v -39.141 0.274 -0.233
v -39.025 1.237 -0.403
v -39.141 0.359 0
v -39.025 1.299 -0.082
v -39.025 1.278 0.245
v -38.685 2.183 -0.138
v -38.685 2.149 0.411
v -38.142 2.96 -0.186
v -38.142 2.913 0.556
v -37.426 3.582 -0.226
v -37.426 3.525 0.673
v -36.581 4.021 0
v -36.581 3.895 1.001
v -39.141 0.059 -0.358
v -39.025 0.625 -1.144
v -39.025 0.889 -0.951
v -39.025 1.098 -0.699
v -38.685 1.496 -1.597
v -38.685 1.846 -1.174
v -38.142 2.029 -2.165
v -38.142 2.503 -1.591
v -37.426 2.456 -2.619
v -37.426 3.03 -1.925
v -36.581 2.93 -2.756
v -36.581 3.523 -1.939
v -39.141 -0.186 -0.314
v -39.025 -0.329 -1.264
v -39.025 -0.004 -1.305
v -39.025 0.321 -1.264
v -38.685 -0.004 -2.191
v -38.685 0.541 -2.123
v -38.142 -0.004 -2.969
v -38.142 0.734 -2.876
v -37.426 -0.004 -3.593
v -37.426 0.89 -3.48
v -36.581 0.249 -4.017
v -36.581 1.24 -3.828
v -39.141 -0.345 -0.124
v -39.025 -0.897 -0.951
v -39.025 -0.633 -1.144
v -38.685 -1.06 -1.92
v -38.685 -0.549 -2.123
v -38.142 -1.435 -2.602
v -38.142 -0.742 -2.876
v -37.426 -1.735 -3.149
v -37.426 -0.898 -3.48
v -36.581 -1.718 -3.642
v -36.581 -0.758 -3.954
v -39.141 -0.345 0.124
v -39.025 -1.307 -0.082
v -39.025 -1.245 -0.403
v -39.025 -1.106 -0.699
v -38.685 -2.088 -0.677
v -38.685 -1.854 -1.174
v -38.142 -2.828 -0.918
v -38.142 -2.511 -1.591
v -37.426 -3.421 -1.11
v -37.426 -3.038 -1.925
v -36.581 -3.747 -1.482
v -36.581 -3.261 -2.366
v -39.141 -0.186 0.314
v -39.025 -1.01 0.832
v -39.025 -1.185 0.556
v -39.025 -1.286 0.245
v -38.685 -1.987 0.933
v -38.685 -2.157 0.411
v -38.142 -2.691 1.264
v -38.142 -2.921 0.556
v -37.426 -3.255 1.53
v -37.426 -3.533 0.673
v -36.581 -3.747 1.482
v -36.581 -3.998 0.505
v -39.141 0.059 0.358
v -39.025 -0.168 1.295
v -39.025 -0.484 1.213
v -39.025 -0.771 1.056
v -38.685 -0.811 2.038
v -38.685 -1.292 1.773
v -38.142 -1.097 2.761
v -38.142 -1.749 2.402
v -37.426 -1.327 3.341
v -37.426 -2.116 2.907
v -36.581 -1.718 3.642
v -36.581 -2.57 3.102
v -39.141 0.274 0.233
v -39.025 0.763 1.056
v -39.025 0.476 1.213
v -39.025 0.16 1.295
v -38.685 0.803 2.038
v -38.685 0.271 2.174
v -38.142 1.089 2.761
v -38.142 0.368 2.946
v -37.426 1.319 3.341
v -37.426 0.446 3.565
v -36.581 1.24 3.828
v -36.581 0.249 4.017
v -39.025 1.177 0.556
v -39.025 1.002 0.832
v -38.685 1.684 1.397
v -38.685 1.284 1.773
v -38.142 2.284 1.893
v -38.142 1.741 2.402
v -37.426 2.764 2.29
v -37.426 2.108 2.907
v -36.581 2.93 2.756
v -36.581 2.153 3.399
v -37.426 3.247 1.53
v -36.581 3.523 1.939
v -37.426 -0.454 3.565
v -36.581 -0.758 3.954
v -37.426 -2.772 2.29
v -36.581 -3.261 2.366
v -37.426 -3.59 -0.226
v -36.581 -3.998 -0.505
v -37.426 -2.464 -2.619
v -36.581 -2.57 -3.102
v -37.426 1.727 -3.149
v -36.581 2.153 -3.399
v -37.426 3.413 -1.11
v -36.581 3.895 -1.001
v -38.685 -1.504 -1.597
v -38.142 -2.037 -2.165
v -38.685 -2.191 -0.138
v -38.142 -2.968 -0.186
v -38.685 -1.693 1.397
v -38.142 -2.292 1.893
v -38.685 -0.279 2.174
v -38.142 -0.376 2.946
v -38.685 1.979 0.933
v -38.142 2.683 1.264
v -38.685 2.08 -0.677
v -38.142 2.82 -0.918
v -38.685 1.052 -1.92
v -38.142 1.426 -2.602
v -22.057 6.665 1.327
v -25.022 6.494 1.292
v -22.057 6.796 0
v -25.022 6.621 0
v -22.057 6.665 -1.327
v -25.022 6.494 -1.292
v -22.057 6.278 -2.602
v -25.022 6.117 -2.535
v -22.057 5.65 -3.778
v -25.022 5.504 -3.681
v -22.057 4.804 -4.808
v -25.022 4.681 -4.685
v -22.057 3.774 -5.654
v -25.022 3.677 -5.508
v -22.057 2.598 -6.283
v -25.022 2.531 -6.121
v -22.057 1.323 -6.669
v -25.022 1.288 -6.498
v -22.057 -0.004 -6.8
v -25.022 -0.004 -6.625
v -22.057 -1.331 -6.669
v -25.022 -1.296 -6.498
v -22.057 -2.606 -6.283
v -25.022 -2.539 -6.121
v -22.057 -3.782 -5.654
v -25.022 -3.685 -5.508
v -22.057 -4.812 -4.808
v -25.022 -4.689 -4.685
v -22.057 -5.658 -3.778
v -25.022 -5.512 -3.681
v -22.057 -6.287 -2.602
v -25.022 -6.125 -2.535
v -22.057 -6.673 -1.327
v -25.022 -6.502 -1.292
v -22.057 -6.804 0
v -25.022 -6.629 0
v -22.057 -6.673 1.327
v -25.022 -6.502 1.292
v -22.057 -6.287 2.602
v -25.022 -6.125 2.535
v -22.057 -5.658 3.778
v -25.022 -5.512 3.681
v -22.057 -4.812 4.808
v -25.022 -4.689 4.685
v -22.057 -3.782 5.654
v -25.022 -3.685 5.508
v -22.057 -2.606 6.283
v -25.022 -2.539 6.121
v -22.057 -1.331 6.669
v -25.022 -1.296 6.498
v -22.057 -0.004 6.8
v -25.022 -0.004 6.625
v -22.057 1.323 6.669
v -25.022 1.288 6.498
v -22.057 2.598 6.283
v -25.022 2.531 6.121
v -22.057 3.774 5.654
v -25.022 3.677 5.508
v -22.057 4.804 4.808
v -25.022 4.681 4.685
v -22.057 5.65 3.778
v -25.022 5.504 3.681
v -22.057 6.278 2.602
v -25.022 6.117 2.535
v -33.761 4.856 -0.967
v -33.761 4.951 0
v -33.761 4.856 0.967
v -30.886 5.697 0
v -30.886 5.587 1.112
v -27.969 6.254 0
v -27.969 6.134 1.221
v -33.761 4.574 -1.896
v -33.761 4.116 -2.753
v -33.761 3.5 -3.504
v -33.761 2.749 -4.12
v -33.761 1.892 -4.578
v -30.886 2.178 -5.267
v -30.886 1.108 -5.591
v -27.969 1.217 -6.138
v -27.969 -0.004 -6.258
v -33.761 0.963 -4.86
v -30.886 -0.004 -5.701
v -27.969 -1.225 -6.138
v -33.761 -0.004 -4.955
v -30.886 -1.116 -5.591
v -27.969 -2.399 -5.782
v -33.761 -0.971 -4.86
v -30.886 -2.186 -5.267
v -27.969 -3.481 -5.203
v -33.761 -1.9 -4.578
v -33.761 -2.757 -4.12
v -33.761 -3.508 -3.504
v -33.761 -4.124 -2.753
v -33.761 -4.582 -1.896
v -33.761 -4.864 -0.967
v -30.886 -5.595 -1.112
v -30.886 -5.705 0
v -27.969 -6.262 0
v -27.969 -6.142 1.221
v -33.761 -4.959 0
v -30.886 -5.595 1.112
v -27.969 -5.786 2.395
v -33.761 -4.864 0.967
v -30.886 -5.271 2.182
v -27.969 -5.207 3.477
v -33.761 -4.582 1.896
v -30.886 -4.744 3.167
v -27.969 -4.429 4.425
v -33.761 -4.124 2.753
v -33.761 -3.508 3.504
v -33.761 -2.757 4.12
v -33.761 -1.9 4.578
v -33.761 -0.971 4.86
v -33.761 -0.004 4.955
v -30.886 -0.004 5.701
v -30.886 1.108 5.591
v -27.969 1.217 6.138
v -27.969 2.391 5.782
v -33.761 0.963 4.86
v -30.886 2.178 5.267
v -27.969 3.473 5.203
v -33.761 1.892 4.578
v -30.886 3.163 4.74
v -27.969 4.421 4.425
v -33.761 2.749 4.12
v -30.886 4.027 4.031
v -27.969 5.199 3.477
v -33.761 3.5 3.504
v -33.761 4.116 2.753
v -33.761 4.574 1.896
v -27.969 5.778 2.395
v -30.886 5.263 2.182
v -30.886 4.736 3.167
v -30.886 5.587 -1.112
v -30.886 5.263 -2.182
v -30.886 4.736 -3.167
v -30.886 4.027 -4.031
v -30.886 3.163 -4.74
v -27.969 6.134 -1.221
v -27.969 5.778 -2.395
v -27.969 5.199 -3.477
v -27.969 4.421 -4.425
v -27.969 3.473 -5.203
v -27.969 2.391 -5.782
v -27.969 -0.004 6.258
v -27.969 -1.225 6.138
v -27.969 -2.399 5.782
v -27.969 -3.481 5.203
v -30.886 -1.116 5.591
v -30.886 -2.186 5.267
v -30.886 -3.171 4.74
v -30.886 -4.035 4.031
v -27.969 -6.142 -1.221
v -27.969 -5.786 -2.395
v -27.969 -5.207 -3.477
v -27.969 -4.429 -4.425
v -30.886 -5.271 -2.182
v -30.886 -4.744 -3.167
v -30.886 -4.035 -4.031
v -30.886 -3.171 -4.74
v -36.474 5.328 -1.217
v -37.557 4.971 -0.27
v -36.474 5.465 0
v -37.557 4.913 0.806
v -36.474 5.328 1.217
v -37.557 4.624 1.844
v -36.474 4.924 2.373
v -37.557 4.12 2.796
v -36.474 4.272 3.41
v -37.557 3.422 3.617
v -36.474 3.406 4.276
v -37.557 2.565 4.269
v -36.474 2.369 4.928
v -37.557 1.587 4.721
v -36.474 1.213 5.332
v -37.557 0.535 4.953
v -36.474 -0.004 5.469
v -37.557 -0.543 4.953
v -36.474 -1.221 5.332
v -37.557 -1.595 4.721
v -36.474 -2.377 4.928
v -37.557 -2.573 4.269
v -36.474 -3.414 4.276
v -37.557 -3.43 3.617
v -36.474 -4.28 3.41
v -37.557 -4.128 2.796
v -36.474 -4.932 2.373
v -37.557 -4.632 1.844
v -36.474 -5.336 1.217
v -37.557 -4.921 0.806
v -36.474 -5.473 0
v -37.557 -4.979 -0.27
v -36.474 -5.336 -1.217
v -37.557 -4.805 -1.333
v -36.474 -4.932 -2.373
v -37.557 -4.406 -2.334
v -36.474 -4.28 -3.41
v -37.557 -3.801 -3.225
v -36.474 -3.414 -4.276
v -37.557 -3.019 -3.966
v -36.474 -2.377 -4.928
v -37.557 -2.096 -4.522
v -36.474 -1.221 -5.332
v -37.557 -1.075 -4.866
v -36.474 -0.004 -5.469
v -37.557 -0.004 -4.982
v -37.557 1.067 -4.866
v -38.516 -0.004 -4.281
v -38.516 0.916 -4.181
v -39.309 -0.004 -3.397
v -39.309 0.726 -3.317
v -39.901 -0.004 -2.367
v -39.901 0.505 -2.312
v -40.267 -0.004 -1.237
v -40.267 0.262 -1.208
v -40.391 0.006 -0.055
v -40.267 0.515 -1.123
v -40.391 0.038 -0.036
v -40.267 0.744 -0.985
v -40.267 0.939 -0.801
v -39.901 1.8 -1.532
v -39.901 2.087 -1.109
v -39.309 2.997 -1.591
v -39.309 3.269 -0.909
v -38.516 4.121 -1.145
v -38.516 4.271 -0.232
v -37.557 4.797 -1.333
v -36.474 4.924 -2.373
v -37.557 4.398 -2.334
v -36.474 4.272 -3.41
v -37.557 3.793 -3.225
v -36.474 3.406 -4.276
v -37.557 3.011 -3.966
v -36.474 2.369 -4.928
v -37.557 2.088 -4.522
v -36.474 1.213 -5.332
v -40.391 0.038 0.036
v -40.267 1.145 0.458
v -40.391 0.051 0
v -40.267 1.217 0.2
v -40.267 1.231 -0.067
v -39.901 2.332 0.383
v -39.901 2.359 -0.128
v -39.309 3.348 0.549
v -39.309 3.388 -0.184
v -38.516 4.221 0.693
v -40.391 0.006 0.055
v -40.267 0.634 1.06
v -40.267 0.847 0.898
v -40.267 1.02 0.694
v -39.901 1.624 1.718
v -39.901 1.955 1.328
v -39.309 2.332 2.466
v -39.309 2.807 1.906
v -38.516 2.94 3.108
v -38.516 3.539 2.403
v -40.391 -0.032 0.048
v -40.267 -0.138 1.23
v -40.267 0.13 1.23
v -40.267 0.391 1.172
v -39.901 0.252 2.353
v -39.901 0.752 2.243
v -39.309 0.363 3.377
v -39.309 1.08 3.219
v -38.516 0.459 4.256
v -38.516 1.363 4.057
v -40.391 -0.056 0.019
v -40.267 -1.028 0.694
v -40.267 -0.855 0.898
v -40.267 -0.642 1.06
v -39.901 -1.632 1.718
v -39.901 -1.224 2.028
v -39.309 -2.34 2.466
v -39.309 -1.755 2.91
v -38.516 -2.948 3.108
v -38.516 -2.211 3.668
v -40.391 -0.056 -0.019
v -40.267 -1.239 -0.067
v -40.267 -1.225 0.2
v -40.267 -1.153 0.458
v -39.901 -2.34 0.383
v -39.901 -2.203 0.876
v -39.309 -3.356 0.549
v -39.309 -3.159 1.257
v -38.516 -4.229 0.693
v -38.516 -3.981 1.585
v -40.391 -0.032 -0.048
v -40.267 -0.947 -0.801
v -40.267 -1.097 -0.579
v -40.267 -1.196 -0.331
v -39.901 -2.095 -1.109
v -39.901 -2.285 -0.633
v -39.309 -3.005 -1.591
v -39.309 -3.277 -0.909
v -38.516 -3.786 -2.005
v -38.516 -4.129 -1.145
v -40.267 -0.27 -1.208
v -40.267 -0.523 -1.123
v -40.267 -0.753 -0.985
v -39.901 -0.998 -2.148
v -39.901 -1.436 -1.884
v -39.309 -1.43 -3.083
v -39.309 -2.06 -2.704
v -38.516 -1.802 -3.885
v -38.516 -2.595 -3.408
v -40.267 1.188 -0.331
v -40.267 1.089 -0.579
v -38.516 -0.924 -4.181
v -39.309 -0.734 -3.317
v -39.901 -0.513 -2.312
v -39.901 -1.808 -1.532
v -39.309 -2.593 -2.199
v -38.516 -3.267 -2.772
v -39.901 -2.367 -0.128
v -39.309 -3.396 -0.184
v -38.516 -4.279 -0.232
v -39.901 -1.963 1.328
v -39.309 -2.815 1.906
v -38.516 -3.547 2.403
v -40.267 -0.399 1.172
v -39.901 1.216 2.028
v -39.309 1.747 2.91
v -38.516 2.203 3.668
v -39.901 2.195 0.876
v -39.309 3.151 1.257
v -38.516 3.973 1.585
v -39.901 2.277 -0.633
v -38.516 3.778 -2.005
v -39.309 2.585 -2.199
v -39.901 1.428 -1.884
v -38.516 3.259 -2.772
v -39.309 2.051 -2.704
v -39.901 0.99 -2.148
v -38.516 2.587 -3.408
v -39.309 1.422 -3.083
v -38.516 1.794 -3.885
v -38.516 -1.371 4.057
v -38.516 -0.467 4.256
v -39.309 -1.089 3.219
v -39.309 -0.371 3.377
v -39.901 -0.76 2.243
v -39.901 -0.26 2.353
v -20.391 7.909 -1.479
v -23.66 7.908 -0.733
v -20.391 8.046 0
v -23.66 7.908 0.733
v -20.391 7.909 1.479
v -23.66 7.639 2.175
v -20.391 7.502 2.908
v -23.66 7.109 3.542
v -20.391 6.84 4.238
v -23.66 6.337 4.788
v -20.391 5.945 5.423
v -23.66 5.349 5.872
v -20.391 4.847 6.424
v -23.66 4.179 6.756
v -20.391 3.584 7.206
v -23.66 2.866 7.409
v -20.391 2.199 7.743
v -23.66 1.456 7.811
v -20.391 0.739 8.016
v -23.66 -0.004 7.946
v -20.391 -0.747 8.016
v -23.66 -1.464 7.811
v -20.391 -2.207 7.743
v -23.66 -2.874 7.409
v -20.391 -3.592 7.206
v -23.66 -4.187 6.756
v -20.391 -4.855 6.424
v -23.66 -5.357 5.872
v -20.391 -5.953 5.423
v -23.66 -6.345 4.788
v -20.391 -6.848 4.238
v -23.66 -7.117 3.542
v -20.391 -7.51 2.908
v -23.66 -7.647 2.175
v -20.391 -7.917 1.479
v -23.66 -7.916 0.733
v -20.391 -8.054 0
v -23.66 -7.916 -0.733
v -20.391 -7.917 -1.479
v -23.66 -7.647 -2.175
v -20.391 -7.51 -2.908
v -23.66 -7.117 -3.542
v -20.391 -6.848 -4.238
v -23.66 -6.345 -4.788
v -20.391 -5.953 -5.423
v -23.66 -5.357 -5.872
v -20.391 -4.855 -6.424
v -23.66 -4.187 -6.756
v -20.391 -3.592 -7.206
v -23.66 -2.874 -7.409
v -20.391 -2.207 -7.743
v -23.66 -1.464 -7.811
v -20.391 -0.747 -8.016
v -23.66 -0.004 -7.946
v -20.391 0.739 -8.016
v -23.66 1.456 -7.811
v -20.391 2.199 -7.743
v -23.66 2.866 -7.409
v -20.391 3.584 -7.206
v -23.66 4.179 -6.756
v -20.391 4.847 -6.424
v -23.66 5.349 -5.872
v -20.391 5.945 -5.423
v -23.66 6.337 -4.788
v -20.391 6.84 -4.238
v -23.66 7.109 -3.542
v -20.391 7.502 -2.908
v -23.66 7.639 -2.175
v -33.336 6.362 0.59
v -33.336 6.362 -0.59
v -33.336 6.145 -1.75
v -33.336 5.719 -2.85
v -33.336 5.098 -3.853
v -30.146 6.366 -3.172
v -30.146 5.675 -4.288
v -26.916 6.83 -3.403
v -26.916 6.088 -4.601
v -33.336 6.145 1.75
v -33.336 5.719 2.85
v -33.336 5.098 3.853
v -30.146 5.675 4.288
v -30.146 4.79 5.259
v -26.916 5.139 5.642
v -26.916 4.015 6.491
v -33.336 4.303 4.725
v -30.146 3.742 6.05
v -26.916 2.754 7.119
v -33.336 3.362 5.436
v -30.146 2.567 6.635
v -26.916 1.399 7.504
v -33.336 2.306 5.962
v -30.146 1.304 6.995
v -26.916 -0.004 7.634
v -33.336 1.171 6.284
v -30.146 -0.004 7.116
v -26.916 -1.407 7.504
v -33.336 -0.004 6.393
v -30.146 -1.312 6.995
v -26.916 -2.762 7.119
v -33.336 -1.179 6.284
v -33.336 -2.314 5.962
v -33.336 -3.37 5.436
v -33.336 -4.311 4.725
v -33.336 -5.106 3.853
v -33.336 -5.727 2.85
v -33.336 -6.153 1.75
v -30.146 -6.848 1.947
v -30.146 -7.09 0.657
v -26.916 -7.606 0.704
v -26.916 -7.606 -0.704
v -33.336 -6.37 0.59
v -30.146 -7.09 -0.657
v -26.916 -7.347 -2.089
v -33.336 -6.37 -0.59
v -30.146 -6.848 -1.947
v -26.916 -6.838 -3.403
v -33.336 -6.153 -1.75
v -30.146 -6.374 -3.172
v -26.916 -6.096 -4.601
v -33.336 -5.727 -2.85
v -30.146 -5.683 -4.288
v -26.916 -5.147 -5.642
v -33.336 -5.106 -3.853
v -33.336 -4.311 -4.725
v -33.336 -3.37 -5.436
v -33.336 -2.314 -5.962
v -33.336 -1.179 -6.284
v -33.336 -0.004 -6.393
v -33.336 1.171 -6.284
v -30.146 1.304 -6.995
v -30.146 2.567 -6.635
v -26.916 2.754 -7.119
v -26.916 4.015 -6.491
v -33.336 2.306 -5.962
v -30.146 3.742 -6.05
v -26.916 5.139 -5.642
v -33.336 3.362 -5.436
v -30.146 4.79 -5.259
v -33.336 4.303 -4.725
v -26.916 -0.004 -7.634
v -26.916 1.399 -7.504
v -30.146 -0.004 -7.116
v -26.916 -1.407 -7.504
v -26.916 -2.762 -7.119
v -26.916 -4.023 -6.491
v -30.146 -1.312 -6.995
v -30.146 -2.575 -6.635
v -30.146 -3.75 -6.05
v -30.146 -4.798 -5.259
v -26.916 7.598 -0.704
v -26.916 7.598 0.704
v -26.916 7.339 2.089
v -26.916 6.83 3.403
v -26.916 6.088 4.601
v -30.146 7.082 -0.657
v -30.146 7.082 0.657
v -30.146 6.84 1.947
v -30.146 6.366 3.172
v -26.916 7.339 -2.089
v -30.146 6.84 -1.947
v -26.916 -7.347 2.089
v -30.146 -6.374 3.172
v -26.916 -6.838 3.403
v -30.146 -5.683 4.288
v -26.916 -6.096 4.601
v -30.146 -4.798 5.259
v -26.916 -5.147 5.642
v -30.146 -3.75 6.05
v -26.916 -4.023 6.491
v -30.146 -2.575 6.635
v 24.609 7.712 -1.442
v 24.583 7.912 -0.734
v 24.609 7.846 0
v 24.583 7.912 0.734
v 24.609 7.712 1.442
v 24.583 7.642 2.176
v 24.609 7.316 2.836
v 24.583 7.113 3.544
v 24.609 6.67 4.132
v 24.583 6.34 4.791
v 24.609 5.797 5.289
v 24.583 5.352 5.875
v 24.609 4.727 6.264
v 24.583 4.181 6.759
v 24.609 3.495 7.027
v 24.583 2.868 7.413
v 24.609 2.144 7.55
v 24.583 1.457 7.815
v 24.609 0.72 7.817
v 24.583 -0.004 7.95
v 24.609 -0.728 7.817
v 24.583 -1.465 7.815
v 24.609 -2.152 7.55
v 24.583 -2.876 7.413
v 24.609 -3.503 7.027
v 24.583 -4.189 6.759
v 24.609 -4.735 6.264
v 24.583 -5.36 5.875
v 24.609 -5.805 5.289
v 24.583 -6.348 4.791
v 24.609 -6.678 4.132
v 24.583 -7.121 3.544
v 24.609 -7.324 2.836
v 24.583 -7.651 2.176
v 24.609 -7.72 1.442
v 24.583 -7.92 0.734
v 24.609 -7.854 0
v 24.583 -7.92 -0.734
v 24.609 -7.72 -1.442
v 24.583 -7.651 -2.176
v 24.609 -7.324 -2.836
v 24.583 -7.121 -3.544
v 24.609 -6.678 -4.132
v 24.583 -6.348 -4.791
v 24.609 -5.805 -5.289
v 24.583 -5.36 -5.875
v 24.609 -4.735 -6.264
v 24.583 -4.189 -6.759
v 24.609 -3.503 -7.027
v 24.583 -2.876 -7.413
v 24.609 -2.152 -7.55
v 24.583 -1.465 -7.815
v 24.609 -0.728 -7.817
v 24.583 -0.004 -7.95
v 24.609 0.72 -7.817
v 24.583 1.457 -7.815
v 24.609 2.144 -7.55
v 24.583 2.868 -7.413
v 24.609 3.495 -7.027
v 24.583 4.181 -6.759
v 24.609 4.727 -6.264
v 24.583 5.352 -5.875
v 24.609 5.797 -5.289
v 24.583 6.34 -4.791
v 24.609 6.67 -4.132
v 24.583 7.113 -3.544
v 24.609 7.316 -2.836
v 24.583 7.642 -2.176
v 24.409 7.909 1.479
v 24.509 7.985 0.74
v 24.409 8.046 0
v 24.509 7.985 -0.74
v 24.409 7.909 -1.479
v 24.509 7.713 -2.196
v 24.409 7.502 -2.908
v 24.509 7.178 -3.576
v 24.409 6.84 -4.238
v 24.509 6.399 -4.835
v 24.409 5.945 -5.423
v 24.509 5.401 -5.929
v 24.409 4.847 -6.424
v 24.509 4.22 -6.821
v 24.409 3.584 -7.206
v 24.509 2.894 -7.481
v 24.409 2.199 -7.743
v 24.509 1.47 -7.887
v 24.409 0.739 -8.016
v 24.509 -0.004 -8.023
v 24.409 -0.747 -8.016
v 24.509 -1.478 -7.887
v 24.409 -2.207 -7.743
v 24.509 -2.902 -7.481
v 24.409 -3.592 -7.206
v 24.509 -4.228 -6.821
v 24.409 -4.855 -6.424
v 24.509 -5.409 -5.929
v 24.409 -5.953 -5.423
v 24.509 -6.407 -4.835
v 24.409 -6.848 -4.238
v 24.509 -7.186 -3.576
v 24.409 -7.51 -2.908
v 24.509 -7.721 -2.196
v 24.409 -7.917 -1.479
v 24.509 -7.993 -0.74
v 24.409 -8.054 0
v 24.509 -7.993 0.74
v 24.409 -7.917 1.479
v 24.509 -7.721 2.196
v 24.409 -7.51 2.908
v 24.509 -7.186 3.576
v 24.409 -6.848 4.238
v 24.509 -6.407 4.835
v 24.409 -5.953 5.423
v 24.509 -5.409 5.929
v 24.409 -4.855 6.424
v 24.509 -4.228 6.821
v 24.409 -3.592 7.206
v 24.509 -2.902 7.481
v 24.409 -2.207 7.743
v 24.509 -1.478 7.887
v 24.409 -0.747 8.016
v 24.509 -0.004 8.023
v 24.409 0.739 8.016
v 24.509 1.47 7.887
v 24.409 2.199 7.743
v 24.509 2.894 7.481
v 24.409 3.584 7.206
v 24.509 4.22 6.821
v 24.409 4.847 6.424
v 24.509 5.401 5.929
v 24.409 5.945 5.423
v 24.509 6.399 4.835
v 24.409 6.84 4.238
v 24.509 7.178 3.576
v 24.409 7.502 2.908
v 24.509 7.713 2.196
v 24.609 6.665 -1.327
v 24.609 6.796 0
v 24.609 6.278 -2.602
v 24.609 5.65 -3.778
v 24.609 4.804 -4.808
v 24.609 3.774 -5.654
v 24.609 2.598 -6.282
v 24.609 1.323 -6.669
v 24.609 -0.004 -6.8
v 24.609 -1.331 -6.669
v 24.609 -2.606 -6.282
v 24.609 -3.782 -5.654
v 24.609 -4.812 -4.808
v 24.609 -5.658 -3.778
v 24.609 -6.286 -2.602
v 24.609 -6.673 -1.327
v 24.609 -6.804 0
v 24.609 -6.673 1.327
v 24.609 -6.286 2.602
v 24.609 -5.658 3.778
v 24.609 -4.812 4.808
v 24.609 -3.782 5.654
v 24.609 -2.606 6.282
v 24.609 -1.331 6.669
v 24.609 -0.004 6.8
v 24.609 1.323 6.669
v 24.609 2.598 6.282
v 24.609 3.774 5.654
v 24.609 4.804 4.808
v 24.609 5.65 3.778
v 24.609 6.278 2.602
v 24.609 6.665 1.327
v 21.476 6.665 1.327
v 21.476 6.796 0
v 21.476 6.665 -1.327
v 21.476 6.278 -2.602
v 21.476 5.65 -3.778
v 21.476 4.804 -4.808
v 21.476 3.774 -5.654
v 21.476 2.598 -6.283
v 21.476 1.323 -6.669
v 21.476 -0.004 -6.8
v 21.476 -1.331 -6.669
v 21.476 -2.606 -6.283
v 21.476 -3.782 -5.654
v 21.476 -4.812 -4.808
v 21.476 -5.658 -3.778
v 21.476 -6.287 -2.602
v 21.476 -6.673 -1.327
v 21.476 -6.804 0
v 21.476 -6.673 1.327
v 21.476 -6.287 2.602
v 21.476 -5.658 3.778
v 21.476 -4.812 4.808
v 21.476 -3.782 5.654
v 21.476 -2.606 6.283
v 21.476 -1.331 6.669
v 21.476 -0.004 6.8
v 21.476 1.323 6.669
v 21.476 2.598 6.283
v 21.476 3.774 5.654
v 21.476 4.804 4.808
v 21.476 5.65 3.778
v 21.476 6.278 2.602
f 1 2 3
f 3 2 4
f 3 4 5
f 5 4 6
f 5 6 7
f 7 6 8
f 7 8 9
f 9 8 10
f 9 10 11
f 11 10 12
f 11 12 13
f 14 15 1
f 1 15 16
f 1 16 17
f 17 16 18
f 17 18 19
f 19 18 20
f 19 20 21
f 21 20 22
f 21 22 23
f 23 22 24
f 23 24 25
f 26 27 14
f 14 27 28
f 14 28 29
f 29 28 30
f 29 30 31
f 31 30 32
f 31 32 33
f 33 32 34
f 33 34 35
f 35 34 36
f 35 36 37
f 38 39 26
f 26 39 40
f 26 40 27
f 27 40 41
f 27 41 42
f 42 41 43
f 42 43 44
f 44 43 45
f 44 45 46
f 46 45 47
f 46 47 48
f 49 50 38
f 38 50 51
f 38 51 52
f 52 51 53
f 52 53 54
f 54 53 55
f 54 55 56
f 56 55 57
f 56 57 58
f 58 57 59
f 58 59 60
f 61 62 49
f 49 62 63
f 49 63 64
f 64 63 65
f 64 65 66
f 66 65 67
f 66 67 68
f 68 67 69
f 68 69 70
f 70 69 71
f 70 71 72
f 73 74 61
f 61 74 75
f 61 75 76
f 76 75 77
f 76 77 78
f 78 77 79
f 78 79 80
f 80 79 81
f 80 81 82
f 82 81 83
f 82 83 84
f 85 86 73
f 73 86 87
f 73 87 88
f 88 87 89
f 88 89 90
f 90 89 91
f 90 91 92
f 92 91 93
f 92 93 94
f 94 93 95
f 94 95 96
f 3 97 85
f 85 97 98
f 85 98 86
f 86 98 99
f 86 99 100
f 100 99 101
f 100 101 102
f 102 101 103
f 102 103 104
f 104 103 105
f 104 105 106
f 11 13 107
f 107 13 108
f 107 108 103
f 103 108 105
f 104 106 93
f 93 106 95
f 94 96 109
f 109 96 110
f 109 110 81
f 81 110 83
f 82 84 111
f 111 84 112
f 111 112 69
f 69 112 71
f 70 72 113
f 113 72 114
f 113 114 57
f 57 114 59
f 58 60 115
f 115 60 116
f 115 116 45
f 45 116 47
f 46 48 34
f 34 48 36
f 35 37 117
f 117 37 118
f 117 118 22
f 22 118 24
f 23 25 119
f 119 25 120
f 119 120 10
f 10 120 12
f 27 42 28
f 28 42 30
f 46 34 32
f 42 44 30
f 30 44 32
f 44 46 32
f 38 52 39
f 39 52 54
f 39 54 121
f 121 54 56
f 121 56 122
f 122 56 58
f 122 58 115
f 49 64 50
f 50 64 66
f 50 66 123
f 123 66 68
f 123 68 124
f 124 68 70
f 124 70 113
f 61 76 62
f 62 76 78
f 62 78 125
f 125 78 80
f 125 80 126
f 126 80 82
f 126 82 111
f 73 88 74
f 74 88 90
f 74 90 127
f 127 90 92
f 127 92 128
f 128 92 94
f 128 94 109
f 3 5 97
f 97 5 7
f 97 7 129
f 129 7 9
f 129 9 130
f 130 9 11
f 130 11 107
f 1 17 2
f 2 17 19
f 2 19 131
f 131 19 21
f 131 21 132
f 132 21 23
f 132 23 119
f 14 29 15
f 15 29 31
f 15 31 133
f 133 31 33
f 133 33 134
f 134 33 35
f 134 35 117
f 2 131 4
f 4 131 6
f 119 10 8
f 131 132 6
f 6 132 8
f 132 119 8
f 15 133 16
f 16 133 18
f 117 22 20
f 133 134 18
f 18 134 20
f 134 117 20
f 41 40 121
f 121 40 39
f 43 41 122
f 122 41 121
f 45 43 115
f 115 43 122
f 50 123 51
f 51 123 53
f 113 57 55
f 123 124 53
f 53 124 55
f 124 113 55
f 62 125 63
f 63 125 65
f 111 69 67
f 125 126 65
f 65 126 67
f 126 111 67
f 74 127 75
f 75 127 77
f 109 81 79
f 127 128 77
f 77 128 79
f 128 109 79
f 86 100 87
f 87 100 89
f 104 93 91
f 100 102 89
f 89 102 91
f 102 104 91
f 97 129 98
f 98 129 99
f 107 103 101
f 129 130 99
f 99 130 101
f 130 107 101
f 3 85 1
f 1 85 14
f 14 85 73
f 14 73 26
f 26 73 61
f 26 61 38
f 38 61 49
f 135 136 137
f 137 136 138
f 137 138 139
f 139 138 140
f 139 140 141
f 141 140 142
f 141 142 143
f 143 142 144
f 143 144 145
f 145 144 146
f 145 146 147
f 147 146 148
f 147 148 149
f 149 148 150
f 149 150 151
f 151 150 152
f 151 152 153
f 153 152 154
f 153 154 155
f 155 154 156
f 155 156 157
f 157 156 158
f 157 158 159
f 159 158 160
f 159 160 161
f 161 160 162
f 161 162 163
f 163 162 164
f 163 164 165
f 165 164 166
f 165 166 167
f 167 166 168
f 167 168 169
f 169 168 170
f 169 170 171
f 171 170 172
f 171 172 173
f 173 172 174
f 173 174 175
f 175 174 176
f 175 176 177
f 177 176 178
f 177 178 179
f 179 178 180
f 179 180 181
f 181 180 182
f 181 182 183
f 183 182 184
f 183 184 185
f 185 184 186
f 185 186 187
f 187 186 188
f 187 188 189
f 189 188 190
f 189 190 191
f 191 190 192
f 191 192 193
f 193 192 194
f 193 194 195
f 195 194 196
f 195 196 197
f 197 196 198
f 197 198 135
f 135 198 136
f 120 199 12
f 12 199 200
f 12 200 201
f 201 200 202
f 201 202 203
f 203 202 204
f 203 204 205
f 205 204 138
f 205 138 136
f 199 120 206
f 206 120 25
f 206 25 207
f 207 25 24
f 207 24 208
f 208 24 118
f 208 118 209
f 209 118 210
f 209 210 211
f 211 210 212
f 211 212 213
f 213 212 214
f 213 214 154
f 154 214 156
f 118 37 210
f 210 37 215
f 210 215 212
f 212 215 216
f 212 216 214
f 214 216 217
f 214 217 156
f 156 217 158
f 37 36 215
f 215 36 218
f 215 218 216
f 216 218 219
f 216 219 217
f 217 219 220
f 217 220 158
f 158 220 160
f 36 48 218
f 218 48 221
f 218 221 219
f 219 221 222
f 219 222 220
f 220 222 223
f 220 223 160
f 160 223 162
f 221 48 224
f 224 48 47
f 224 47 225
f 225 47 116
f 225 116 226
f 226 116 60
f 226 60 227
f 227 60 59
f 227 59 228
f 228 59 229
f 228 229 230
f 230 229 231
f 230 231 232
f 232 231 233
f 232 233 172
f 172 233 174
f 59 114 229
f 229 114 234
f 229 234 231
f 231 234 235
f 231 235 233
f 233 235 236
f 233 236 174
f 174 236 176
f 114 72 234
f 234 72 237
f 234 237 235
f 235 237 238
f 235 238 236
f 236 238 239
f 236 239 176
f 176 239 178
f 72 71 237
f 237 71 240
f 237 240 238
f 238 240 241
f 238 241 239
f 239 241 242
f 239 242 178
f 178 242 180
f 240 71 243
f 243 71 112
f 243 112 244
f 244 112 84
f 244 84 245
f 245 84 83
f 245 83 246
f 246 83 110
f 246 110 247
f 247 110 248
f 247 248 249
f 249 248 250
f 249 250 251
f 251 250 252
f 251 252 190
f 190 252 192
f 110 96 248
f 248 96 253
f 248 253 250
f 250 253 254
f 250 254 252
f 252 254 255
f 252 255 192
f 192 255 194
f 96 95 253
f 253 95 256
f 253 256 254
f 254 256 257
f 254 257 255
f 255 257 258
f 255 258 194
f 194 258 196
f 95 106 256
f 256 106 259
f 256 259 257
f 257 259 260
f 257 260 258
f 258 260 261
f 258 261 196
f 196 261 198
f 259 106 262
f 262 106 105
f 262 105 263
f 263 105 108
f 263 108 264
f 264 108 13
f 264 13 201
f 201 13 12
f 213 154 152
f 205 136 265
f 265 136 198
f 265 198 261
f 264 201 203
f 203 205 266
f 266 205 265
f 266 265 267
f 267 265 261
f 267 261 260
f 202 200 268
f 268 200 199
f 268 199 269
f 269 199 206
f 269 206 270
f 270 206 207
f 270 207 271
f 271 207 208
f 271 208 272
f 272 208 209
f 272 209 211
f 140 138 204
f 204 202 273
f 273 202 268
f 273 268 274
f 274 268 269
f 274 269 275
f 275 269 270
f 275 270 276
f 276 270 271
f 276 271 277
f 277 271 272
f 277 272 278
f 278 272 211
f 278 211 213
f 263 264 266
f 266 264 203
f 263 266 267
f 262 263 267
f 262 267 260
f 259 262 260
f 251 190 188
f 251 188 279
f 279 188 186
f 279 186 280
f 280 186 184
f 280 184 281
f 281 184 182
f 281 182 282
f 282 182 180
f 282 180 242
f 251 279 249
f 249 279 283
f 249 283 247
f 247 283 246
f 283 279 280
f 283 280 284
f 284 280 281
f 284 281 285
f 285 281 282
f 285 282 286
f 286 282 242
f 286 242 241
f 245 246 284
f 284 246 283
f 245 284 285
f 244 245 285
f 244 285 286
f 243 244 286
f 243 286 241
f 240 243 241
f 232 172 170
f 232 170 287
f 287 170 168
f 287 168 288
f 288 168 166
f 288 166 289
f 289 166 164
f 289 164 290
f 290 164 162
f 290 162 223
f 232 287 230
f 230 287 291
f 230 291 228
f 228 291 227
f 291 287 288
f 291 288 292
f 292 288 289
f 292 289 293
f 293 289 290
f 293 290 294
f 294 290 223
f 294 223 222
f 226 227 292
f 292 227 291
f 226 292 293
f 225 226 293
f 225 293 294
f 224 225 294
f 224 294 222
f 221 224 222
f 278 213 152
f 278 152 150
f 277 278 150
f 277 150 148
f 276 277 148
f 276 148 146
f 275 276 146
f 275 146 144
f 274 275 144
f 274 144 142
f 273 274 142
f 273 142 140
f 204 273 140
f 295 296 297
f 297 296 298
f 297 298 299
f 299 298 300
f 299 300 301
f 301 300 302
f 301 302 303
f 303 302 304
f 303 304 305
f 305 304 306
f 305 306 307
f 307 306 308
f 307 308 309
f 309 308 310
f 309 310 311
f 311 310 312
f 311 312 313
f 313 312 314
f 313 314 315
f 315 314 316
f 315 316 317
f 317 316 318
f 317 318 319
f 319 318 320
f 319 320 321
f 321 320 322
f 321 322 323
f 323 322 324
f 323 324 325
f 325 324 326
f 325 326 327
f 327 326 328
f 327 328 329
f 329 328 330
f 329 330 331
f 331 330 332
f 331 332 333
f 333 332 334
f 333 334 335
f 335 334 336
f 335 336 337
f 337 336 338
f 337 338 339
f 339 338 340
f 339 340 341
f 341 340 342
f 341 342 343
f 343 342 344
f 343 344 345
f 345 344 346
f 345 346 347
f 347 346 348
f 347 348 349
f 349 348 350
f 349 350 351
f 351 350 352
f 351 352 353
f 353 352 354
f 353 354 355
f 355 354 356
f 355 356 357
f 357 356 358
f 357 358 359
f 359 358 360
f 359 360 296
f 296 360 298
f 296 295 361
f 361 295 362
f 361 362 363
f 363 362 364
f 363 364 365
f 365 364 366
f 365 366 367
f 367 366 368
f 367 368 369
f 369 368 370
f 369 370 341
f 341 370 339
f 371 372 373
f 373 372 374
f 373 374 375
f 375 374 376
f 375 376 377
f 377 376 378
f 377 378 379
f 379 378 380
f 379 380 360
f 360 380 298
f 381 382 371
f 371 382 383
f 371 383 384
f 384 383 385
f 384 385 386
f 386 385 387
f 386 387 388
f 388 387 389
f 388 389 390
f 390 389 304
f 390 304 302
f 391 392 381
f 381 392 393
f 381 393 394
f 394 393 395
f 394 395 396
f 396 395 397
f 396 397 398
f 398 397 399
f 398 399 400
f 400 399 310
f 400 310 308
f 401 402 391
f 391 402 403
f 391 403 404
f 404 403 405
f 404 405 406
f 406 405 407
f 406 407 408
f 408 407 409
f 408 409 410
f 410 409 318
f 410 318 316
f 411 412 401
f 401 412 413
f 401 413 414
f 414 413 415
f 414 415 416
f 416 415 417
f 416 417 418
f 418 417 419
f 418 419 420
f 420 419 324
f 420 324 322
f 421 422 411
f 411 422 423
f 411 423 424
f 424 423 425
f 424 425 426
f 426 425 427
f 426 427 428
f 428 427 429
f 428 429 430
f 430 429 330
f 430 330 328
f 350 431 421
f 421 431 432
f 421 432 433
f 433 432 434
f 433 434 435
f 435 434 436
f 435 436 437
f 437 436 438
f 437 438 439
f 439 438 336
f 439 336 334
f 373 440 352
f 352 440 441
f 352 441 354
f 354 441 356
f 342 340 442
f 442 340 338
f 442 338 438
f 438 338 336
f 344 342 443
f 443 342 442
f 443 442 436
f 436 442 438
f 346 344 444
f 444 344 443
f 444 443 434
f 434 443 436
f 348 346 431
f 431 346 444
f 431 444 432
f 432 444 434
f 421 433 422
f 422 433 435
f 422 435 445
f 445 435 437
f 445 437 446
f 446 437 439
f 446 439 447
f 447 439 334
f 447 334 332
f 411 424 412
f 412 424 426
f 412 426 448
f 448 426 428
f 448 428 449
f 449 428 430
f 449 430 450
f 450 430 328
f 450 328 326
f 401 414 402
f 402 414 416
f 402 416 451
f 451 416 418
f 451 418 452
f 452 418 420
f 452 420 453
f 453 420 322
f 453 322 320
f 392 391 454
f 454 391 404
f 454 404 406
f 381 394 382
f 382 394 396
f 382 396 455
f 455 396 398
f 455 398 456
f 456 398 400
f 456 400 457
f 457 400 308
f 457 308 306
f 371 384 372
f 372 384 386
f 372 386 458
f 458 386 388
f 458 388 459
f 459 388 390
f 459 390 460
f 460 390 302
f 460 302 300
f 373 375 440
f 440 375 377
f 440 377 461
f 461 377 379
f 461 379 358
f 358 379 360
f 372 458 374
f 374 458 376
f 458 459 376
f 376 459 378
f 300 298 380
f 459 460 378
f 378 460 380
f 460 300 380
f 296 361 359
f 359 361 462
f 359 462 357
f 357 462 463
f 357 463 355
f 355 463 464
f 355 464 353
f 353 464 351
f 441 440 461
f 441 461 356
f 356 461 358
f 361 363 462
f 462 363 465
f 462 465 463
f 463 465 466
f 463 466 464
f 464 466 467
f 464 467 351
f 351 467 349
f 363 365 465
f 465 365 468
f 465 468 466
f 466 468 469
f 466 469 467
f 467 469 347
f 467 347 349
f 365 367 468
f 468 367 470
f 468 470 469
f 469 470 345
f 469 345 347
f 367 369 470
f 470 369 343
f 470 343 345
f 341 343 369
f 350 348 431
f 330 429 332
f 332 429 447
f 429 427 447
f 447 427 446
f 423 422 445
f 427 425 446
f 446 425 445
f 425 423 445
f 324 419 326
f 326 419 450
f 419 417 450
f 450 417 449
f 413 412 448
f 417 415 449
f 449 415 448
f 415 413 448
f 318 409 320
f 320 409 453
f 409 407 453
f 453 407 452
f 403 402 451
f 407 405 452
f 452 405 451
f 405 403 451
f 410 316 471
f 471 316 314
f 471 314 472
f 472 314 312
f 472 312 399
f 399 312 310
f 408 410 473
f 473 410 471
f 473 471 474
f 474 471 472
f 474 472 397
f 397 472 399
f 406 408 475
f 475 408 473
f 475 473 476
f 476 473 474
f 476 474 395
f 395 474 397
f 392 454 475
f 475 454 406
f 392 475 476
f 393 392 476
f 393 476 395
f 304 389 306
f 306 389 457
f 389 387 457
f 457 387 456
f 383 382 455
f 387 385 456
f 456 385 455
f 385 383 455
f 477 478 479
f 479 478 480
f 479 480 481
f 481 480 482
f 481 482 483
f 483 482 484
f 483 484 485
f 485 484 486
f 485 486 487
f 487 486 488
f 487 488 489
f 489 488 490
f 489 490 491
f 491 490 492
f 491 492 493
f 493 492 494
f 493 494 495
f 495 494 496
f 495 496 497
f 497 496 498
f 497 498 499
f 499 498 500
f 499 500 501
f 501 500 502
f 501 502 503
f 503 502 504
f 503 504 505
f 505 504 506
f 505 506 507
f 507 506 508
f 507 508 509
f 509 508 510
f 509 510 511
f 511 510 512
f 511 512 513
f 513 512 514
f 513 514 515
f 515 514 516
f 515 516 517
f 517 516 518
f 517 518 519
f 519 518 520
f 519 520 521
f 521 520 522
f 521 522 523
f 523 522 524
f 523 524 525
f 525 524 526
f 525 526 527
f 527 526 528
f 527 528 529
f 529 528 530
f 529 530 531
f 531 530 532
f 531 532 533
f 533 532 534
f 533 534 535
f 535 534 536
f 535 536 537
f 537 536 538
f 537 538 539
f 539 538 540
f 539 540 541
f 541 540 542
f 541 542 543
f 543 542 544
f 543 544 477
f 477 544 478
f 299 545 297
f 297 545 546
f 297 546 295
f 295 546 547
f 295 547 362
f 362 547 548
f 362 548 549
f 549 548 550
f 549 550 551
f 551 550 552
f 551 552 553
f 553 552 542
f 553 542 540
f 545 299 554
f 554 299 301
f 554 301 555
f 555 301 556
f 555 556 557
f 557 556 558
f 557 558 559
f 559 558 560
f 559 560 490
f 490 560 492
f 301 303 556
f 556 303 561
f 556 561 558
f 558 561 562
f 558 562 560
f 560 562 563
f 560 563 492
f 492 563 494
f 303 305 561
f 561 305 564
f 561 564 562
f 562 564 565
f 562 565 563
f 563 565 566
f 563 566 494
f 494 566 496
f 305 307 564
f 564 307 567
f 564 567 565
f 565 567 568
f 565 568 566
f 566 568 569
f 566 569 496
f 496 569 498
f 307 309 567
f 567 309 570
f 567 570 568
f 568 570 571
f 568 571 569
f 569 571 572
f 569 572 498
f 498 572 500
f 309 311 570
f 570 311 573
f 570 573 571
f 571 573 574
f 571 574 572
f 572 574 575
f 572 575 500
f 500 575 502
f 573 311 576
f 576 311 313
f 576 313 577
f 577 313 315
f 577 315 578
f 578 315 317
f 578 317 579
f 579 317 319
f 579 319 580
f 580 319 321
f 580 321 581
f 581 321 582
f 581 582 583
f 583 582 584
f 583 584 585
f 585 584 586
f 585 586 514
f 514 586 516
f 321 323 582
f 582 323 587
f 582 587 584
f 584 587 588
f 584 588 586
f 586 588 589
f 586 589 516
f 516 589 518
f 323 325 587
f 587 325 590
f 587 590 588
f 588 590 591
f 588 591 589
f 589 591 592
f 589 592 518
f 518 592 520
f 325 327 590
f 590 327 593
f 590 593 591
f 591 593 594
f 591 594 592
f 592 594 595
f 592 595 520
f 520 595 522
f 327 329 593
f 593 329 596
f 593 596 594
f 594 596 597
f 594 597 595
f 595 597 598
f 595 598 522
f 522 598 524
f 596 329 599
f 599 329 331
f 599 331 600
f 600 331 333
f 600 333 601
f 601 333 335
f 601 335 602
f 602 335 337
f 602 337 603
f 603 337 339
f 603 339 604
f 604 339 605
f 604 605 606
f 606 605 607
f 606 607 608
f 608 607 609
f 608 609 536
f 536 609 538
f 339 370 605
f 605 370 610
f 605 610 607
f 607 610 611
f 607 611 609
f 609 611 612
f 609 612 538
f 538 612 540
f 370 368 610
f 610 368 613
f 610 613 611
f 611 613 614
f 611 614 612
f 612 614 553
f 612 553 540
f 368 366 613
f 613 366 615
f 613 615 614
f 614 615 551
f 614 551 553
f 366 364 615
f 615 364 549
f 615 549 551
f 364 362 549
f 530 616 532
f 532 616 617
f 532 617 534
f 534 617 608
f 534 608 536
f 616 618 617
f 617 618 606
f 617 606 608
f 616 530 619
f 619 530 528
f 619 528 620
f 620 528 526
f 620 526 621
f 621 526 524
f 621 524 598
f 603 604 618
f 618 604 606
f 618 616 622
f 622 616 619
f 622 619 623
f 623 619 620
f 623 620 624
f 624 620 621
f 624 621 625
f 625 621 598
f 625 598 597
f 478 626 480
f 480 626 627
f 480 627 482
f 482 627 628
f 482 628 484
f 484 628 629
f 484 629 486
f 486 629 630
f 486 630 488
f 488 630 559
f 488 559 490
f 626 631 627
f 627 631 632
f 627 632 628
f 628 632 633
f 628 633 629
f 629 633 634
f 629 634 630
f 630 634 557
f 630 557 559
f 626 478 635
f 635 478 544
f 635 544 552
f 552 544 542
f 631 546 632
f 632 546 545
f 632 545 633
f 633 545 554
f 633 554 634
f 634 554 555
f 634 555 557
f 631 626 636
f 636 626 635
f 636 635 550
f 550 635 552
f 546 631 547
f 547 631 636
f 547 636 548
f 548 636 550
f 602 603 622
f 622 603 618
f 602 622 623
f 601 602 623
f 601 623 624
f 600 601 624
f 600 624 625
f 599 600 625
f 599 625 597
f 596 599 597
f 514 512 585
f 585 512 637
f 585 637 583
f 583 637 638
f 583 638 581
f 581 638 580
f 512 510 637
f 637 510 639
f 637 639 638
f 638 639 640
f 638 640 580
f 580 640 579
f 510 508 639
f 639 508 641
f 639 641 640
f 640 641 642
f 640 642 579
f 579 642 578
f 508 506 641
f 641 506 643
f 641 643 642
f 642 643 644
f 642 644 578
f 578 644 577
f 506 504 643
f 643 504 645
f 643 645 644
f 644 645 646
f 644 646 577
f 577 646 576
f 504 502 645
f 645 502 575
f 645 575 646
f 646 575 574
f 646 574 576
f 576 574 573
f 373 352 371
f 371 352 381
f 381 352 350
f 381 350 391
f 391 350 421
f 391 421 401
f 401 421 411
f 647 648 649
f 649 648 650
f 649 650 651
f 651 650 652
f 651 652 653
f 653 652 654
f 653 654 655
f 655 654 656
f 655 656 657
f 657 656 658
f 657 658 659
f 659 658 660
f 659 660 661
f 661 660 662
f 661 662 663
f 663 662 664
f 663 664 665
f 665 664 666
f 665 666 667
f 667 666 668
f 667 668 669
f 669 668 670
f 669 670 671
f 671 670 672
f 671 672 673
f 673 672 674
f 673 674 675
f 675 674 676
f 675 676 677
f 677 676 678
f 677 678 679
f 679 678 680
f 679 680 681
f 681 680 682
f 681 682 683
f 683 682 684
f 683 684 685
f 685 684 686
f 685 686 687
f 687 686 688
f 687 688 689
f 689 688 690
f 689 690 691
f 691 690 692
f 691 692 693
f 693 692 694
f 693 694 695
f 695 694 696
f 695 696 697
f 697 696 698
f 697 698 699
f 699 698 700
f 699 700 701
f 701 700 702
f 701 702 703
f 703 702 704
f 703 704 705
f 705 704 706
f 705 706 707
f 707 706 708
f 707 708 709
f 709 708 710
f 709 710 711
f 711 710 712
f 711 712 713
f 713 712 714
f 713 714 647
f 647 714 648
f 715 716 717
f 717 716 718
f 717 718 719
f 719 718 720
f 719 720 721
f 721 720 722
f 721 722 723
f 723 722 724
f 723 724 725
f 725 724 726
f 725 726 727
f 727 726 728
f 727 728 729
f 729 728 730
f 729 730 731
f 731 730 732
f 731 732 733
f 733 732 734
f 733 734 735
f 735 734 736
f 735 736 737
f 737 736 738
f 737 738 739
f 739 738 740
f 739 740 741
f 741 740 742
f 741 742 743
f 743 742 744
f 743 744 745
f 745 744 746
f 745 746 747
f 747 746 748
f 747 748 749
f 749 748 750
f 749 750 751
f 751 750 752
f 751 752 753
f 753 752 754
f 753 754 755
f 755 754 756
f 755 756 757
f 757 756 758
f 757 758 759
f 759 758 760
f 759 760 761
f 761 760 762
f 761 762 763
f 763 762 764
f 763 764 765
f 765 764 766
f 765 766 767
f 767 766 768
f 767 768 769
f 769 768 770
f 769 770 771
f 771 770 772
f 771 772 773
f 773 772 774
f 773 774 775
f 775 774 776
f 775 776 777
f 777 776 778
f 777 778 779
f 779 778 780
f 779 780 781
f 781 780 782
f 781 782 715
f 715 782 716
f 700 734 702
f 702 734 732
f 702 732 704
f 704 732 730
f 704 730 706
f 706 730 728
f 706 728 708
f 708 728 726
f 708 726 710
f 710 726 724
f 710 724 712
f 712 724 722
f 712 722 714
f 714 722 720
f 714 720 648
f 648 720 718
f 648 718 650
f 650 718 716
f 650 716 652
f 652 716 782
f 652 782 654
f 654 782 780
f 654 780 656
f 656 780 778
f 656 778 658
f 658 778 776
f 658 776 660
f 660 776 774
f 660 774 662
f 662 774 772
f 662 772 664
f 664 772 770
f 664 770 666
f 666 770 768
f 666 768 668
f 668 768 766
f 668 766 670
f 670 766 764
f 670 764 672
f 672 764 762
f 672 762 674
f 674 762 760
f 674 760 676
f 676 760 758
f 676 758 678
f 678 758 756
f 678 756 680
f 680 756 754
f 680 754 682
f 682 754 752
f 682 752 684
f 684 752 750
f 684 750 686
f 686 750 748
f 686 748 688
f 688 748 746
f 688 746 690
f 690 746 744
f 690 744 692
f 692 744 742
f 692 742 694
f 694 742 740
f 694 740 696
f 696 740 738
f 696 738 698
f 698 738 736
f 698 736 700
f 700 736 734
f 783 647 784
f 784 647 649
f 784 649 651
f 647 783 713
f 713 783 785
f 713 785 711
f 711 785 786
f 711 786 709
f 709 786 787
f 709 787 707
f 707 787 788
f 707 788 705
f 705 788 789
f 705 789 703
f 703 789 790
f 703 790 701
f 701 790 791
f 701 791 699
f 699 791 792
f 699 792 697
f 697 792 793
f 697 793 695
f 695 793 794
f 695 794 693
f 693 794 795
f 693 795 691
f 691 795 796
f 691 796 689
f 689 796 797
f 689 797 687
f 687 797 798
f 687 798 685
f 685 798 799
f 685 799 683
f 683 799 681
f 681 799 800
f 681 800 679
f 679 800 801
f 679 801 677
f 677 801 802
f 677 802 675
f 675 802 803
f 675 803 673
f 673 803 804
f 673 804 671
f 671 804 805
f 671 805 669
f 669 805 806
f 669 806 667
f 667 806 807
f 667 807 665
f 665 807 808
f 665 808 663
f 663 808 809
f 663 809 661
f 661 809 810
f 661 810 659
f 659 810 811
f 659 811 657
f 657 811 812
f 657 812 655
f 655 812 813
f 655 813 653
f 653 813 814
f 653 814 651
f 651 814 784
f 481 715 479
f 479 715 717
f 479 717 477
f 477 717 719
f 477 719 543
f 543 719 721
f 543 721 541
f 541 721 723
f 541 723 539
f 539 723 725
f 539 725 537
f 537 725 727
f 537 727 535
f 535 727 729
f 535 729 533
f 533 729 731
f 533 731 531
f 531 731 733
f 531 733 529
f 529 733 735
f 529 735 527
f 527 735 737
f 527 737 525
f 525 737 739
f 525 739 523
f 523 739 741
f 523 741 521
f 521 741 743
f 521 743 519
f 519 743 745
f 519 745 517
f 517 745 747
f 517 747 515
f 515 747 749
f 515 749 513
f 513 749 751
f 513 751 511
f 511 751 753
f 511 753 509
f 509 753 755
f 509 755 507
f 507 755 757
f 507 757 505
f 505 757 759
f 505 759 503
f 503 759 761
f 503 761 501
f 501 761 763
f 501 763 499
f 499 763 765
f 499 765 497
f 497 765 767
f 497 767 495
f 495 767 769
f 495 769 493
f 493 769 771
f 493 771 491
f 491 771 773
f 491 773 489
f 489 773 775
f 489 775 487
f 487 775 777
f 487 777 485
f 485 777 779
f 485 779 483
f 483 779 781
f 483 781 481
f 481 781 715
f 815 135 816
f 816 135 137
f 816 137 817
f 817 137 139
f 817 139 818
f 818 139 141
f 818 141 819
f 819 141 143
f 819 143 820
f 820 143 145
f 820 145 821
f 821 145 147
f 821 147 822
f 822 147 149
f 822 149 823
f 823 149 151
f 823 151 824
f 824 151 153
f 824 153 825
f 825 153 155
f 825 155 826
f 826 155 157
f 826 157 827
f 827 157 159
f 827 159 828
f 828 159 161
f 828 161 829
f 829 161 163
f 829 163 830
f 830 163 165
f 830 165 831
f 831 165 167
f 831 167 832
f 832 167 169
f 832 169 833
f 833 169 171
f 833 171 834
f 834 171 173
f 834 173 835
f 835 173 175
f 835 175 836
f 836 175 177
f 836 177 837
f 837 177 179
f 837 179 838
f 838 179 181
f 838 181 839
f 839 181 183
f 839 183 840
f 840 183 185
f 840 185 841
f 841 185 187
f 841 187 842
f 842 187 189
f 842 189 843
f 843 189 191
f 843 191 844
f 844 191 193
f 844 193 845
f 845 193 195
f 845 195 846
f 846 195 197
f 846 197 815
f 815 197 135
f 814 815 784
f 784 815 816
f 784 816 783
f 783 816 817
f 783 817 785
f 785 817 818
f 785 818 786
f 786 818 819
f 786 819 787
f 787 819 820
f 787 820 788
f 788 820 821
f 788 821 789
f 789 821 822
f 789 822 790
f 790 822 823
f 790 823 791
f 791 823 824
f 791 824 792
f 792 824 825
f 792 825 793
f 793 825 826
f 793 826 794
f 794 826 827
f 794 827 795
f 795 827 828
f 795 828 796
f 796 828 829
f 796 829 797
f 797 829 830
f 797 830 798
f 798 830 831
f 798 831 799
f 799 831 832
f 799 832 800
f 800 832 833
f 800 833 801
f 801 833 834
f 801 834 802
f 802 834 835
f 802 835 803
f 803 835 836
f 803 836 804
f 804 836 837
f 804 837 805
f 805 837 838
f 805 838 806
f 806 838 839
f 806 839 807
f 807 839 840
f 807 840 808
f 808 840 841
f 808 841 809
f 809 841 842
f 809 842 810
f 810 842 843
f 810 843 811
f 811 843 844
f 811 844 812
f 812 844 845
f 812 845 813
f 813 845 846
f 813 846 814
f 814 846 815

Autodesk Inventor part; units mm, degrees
ref_plane "YZ Plane" through (0, 0, 0) normal (1, 0, 0) x (0, 1, 0)
ref_plane "XZ Plane" through (0, 0, 0) normal (0, 1, 0) x (-1, 0, 0)
ref_plane "XY Plane" through (0, 0, 0) normal (0, 0, 1) x (1, 0, 0)
sketch "Sketch1" plane through (0, 0, 0) normal (0, 0, 1) x (1, 0, 0)
  line L0 (-32.3906, 7.996) -> (-32.3906, -0.004) construction
  line L1 (-40.3906, -0.004) -> (-32.3906, -0.004) construction
  line L2 (61.6987, -0.004) -> (-73.3826, -0.004) construction
  line L3 (24.6094, 8.046) -> (24.6094, 6.796)
  line L4 (-40.3906, -0.004) -> (-39.1406, -0.004)
  line L5 (21.2094, 9.588) -> (21.2094, 3.996) construction
  line L6 (24.6094, 6.796) -> (21.4757, 6.7961)
  line L7 (24.6094, 8.046) -> (-20.3906, 8.046)
  line L8 (-40.3906, -0.004) -> (-40.3906, 3.996)
  arc A0 (-20.3906, 8.046) -> (-40.3906, 3.996) centre (-20.3906, -43.3617) ccw
  line L9 (20.9432, 6.7961) -> (-22.0568, 6.7961)
  line L10 (-39.1406, -0.004) -> (-39.1406, 2.996)
  arc A1 (-22.0568, 6.7961) -> (-39.1406, 2.996) centre (-20.84, -38.9748) ccw
  line L11 (20.9432, 6.7961) -> (21.4757, 6.7961)
  point P0 (0, 0)
  point P1 (-32.3906, 6.746)
  dimension "d3" = 1.25
  dimension "d4" = 65
  dimension "d6" = 6.8
  dimension "d7" = 8.05
  dimension "d8" = 3.4
  dimension "d12" = 45
  dimension "d13" = 4
  dimension "d14" = 3
  dimension "d16" = 43
revolve "Revolution1" add sketch "Sketch1" angle 360 about axis through (61.6987, -0.004, 0) along (-1, 0, 0)
fillet "Fillet1" radius 0.2 1 edges at (24.6094, -8.054, 0)
fillet "Fillet2" radius 5.7 1 edges at (-40.3906, -4.004, 0)
fillet "Fillet3" radius 3.9 1 edges at (-39.1406, -3.004, 0)
properties part number "Cap"
